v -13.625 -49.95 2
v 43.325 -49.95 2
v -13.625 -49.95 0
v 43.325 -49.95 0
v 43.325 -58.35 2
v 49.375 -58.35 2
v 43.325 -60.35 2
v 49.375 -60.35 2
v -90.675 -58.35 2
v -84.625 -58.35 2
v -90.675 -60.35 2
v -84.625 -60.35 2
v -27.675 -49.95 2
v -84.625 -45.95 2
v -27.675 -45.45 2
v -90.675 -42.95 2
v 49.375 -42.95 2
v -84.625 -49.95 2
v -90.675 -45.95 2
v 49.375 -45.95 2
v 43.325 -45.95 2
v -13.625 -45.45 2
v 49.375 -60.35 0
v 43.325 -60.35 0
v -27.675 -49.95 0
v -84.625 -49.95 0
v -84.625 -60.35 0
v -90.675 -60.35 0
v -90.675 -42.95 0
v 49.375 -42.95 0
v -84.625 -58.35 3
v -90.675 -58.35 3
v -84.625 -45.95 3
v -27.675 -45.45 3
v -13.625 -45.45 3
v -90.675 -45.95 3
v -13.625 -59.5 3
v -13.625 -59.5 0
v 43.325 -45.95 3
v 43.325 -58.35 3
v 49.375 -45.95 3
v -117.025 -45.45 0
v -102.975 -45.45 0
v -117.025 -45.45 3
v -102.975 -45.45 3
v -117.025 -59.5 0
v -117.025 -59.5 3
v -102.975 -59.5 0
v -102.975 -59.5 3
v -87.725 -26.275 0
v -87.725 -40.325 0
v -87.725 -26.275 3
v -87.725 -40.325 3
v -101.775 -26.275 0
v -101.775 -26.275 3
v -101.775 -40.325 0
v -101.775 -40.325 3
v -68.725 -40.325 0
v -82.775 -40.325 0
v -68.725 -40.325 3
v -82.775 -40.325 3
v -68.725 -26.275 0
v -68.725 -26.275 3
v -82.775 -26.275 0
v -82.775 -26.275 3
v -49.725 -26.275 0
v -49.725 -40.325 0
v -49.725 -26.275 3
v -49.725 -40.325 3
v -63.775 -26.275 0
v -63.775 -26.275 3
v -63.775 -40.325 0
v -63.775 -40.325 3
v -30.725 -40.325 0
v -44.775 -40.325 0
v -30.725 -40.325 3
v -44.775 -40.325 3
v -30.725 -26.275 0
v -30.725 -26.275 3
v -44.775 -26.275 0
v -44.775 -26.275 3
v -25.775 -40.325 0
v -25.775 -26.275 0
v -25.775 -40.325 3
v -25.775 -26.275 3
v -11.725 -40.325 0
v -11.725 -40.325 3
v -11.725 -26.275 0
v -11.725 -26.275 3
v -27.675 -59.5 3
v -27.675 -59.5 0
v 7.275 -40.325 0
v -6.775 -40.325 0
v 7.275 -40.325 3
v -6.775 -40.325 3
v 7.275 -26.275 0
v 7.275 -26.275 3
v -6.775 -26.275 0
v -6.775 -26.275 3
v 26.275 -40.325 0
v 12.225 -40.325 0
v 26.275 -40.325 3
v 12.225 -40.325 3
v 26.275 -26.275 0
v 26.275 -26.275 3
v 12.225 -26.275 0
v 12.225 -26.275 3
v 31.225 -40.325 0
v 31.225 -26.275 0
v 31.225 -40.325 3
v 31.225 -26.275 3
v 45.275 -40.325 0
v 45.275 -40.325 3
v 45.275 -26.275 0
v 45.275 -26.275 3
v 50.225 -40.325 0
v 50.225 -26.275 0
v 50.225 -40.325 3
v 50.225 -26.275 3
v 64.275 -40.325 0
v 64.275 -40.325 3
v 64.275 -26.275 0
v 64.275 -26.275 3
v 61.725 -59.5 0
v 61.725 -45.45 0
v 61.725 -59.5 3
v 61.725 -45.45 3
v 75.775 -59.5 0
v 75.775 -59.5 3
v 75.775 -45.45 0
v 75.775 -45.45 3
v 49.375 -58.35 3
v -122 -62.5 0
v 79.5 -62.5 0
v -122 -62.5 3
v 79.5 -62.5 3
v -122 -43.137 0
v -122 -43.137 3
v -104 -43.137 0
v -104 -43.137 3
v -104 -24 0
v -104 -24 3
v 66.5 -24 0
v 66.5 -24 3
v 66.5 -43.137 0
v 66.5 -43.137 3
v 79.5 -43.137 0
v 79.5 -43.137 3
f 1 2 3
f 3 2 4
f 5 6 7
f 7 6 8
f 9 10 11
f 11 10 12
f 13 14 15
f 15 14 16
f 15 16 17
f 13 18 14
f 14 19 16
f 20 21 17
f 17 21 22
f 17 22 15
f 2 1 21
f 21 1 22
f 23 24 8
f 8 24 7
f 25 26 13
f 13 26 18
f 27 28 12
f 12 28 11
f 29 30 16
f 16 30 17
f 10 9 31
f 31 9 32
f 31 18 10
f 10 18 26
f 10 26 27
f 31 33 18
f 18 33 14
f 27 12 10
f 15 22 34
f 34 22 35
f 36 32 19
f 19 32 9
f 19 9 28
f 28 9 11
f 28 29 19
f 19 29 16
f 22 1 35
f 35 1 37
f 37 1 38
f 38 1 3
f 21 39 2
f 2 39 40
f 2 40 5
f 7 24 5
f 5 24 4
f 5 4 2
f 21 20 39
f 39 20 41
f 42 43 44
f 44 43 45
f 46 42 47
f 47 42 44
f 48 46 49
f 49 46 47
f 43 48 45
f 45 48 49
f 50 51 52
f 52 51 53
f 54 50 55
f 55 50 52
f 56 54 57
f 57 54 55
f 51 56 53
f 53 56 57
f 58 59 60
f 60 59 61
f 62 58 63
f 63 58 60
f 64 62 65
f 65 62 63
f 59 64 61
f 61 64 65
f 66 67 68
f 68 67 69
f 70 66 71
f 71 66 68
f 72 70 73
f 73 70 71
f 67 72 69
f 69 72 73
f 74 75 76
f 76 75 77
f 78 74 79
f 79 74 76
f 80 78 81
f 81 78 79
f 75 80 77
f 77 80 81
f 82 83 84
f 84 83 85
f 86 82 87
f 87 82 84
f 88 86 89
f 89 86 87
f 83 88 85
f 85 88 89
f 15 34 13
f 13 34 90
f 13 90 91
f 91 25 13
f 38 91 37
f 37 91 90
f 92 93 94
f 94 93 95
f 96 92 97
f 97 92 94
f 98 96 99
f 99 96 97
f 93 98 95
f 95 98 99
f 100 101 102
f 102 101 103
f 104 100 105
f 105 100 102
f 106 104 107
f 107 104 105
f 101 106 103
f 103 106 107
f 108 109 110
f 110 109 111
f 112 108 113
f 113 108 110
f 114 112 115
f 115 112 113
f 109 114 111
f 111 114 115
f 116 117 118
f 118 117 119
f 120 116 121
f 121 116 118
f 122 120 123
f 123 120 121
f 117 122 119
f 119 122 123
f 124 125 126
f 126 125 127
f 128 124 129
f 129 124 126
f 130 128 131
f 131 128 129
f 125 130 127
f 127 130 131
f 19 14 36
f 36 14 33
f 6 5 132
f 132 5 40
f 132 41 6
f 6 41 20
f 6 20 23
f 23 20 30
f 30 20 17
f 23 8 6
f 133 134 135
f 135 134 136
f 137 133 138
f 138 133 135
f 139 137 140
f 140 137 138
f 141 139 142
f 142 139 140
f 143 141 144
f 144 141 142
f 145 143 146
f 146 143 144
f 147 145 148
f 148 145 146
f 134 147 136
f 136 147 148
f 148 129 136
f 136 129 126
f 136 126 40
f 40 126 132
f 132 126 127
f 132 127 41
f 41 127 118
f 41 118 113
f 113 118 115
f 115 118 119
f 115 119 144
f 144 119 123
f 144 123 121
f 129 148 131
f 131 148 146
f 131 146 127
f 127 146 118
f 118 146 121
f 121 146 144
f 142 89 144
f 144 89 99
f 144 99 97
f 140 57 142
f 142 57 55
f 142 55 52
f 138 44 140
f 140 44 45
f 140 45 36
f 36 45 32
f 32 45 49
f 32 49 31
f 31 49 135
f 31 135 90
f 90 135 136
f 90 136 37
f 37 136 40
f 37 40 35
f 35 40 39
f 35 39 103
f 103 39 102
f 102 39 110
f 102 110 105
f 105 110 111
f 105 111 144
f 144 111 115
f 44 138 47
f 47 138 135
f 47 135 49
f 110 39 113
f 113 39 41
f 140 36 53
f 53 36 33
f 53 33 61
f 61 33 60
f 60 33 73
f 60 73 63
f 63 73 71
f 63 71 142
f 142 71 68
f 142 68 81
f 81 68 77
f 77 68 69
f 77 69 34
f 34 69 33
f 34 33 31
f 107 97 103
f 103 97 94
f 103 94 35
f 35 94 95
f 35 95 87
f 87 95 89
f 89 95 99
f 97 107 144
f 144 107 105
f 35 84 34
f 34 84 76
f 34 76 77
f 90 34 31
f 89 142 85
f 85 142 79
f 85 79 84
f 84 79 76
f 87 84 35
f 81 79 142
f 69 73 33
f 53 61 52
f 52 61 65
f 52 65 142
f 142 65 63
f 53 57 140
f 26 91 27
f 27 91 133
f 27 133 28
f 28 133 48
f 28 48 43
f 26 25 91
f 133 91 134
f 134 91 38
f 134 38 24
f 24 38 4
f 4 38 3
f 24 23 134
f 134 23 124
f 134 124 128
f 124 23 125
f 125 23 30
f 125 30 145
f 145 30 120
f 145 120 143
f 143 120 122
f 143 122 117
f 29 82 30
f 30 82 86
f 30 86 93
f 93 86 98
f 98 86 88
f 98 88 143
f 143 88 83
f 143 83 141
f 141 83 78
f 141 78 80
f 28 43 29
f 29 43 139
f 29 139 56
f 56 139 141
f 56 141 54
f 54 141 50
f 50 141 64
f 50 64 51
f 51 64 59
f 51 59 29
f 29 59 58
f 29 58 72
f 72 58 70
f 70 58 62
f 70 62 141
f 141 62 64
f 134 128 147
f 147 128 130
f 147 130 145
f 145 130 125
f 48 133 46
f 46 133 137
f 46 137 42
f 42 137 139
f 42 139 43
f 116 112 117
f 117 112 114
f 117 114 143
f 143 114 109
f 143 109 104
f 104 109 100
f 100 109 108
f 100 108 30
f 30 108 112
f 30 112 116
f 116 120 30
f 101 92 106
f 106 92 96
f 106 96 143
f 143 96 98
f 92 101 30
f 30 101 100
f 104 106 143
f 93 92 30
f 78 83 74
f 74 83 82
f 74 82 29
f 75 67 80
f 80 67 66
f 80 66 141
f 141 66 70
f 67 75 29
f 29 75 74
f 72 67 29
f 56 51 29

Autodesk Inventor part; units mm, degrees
ref_plane "YZ Plane" through (0, 0, 0) normal (1, 0, 0) x (0, 1, 0)
ref_plane "XZ Plane" through (0, 0, 0) normal (0, 1, 0) x (-1, 0, 0)
ref_plane "XY Plane" through (0, 0, 0) normal (0, 0, 1) x (1, 0, 0)
sketch "Sketch1" plane through (0, 0, 0) normal (0, 0, 1) x (1, 0, 0)
  line L0 (31.275, 11.925) -> (31.275, -2.125) construction
  line L1 (31.275, -2.125) -> (17.225, -2.125) construction
  line L2 (17.225, -2.125) -> (17.225, 11.925) construction
  line L3 (17.225, 11.925) -> (31.275, 11.925) construction
  line L4 (-101.725, 11.925) -> (-101.725, -2.125) construction
  line L5 (-101.725, -2.125) -> (-115.775, -2.125) construction
  line L6 (-115.775, -2.125) -> (-115.775, 11.925) construction
  line L7 (-115.775, 11.925) -> (-101.725, 11.925) construction
  line L8 (43.325, -43.95) -> (49.375, -43.95) construction
  line L9 (49.375, -43.95) -> (49.375, -61) construction
  line L10 (49.375, -61) -> (43.325, -61) construction
  line L11 (43.325, -61) -> (43.325, -43.95) construction
  line L12 (117.95, -19.8) -> (117.95, -13.75) construction
  line L13 (117.95, -13.75) -> (135, -13.75) construction
  line L14 (135, -13.75) -> (135, -19.8) construction
  line L15 (135, -19.8) -> (117.95, -19.8) construction
  line L16 (26.325, -43.95) -> (32.375, -43.95) construction
  line L17 (32.375, -43.95) -> (32.375, -61) construction
  line L18 (32.375, -61) -> (26.325, -61) construction
  line L19 (26.325, -61) -> (26.325, -43.95) construction
  line L20 (-152.525, 13.425) -> (-146.475, 13.425) construction
  line L21 (-146.475, 13.425) -> (-146.475, -3.625) construction
  line L22 (-146.475, -3.625) -> (-152.525, -3.625) construction
  line L23 (-152.525, -3.625) -> (-152.525, 13.425) construction
  line L24 (-90.675, -43.95) -> (-84.625, -43.95) construction
  line L25 (-84.625, -43.95) -> (-84.625, -61) construction
  line L26 (-84.625, -61) -> (-90.675, -61) construction
  line L27 (-90.675, -61) -> (-90.675, -43.95) construction
  line L28 (39.375, -43.95) -> (39.375, -61) construction
  line L29 (39.375, -61) -> (33.325, -61) construction
  line L30 (33.325, -61) -> (33.325, -43.95) construction
  line L31 (33.325, -43.95) -> (39.375, -43.95) construction
  line L32 (117.95, 4.2) -> (117.95, 10.25) construction
  line L33 (117.95, 10.25) -> (135, 10.25) construction
  line L34 (135, 10.25) -> (135, 4.2) construction
  line L35 (135, 4.2) -> (117.95, 4.2) construction
  line L36 (-67.625, -43.95) -> (-67.625, -61) construction
  line L37 (-67.625, -61) -> (-73.675, -61) construction
  line L38 (-73.675, -61) -> (-73.675, -43.95) construction
  line L39 (-73.675, -43.95) -> (-67.625, -43.95) construction
  line L40 (-128.525, 13.425) -> (-122.475, 13.425) construction
  line L41 (-122.475, 13.425) -> (-122.475, -3.625) construction
  line L42 (-122.475, -3.625) -> (-128.525, -3.625) construction
  line L43 (-128.525, -3.625) -> (-128.525, 13.425) construction
  line L44 (-74.625, -43.95) -> (-74.625, -61) construction
  line L45 (-74.625, -61) -> (-80.675, -61) construction
  line L46 (-80.675, -61) -> (-80.675, -43.95) construction
  line L47 (-80.675, -43.95) -> (-74.625, -43.95) construction
  line L48 (-157.5, -62.5) -> (157.5, -62.5) construction
  line L49 (157.5, -62.5) -> (157.5, -41.5) construction
  line L50 (157.5, -41.5) -> (139.5, -41.5) construction
  line L51 (139.5, -41.5) -> (139.5, 12.5) construction
  line L52 (139.5, 12.5) -> (157.5, 12.5) construction
  line L53 (157.5, 12.5) -> (157.5, 62.5) construction
  line L54 (157.5, 62.5) -> (-157.5, 62.5) construction
  line L55 (-157.5, 62.5) -> (-157.5, -62.5) construction
  line L56 (-38.5, 42.5) -> (6.5, 42.5) construction
  line L57 (6.5, 42.5) -> (6.5, 33.5) construction
  line L58 (6.5, 33.5) -> (-38.5, 33.5) construction
  line L59 (-38.5, 33.5) -> (-38.5, 42.5) construction
  line L60 (154.775, -45.45) -> (154.775, -59.5) construction
  line L61 (154.775, -59.5) -> (140.725, -59.5) construction
  line L62 (140.725, -59.5) -> (140.725, -45.45) construction
  line L63 (140.725, -45.45) -> (154.775, -45.45) construction
  line L64 (135.775, -45.45) -> (135.775, -59.5) construction
  line L65 (135.775, -59.5) -> (121.725, -59.5) construction
  line L66 (121.725, -59.5) -> (121.725, -45.45) construction
  line L67 (121.725, -45.45) -> (135.775, -45.45) construction
  line L68 (116.775, -45.45) -> (116.775, -59.5) construction
  line L69 (116.775, -59.5) -> (102.725, -59.5) construction
  line L70 (102.725, -59.5) -> (102.725, -45.45) construction
  line L71 (102.725, -45.45) -> (116.775, -45.45) construction
  line L72 (97.775, -45.45) -> (97.775, -59.5) construction
  line L73 (97.775, -59.5) -> (83.725, -59.5) construction
  line L74 (83.725, -59.5) -> (83.725, -45.45) construction
  line L75 (83.725, -45.45) -> (97.775, -45.45) construction
  line L76 (75.775, -45.45) -> (75.775, -59.5) construction
  line L77 (75.775, -59.5) -> (61.725, -59.5) construction
  line L78 (61.725, -59.5) -> (61.725, -45.45) construction
  line L79 (61.725, -45.45) -> (75.775, -45.45) construction
  line L80 (-13.625, -45.45) -> (-13.625, -59.5) construction
  line L81 (-13.625, -59.5) -> (-27.675, -59.5) construction
  line L82 (-27.675, -59.5) -> (-27.675, -45.45) construction
  line L83 (-27.675, -45.45) -> (-13.625, -45.45) construction
  line L84 (-102.975, -45.45) -> (-102.975, -59.5) construction
  line L85 (-102.975, -59.5) -> (-117.025, -59.5) construction
  line L86 (-117.025, -59.5) -> (-117.025, -45.45) construction
  line L87 (-117.025, -45.45) -> (-102.975, -45.45) construction
  line L88 (-141.525, -45.45) -> (-127.475, -45.45) construction
  line L89 (-127.475, -45.45) -> (-127.475, -59.5) construction
  line L90 (-127.475, -59.5) -> (-141.525, -59.5) construction
  line L91 (-141.525, -59.5) -> (-141.525, -45.45) construction
  line L92 (121.725, -26.275) -> (135.775, -26.275) construction
  line L93 (135.775, -26.275) -> (135.775, -40.325) construction
  line L94 (135.775, -40.325) -> (121.725, -40.325) construction
  line L95 (121.725, -40.325) -> (121.725, -26.275) construction
  line L96 (95.475, -26.275) -> (109.525, -26.275) construction
  line L97 (109.525, -26.275) -> (109.525, -40.325) construction
  line L98 (109.525, -40.325) -> (95.475, -40.325) construction
  line L99 (95.475, -40.325) -> (95.475, -26.275) construction
  line L100 (69.225, -26.275) -> (83.275, -26.275) construction
  line L101 (83.275, -26.275) -> (83.275, -40.325) construction
  line L102 (83.275, -40.325) -> (69.225, -40.325) construction
  line L103 (69.225, -40.325) -> (69.225, -26.275) construction
  line L104 (50.225, -26.275) -> (64.275, -26.275) construction
  line L105 (64.275, -26.275) -> (64.275, -40.325) construction
  line L106 (64.275, -40.325) -> (50.225, -40.325) construction
  line L107 (50.225, -40.325) -> (50.225, -26.275) construction
  line L108 (31.225, -26.275) -> (45.275, -26.275) construction
  line L109 (45.275, -26.275) -> (45.275, -40.325) construction
  line L110 (45.275, -40.325) -> (31.225, -40.325) construction
  line L111 (31.225, -40.325) -> (31.225, -26.275) construction
  line L112 (12.225, -26.275) -> (26.275, -26.275) construction
  line L113 (26.275, -26.275) -> (26.275, -40.325) construction
  line L114 (26.275, -40.325) -> (12.225, -40.325) construction
  line L115 (12.225, -40.325) -> (12.225, -26.275) construction
  line L116 (-6.775, -26.275) -> (7.275, -26.275) construction
  line L117 (7.275, -26.275) -> (7.275, -40.325) construction
  line L118 (7.275, -40.325) -> (-6.775, -40.325) construction
  line L119 (-6.775, -40.325) -> (-6.775, -26.275) construction
  line L120 (-25.775, -26.275) -> (-11.725, -26.275) construction
  line L121 (-11.725, -26.275) -> (-11.725, -40.325) construction
  line L122 (-11.725, -40.325) -> (-25.775, -40.325) construction
  line L123 (-25.775, -40.325) -> (-25.775, -26.275) construction
  line L124 (-44.775, -26.275) -> (-30.725, -26.275) construction
  line L125 (-30.725, -26.275) -> (-30.725, -40.325) construction
  line L126 (-30.725, -40.325) -> (-44.775, -40.325) construction
  line L127 (-44.775, -40.325) -> (-44.775, -26.275) construction
  line L128 (-63.775, -26.275) -> (-49.725, -26.275) construction
  line L129 (-49.725, -26.275) -> (-49.725, -40.325) construction
  line L130 (-49.725, -40.325) -> (-63.775, -40.325) construction
  line L131 (-63.775, -40.325) -> (-63.775, -26.275) construction
  line L132 (-82.775, -26.275) -> (-68.725, -26.275) construction
  line L133 (-68.725, -26.275) -> (-68.725, -40.325) construction
  line L134 (-68.725, -40.325) -> (-82.775, -40.325) construction
  line L135 (-82.775, -40.325) -> (-82.775, -26.275) construction
  line L136 (-101.775, -26.275) -> (-87.725, -26.275) construction
  line L137 (-87.725, -26.275) -> (-87.725, -40.325) construction
  line L138 (-87.725, -40.325) -> (-101.775, -40.325) construction
  line L139 (-101.775, -40.325) -> (-101.775, -26.275) construction
  line L140 (-120.775, -26.275) -> (-106.725, -26.275) construction
  line L141 (-106.725, -26.275) -> (-106.725, -40.325) construction
  line L142 (-106.725, -40.325) -> (-120.775, -40.325) construction
  line L143 (-120.775, -40.325) -> (-120.775, -26.275) construction
  line L144 (-146.775, -26.275) -> (-132.725, -26.275) construction
  line L145 (-132.725, -26.275) -> (-132.725, -40.325) construction
  line L146 (-132.725, -40.325) -> (-146.775, -40.325) construction
  line L147 (-146.775, -40.325) -> (-146.775, -26.275) construction
  line L148 (97.975, -7.175) -> (112.025, -7.175) construction
  line L149 (112.025, -7.175) -> (112.025, -21.225) construction
  line L150 (112.025, -21.225) -> (97.975, -21.225) construction
  line L151 (97.975, -21.225) -> (97.975, -7.175) construction
  line L152 (78.975, -7.175) -> (93.025, -7.175) construction
  line L153 (93.025, -7.175) -> (93.025, -21.225) construction
  line L154 (93.025, -21.225) -> (78.975, -21.225) construction
  line L155 (78.975, -21.225) -> (78.975, -7.175) construction
  line L156 (59.975, -7.175) -> (74.025, -7.175) construction
  line L157 (74.025, -7.175) -> (74.025, -21.225) construction
  line L158 (74.025, -21.225) -> (59.975, -21.225) construction
  line L159 (59.975, -21.225) -> (59.975, -7.175) construction
  line L160 (40.975, -7.175) -> (55.025, -7.175) construction
  line L161 (55.025, -7.175) -> (55.025, -21.225) construction
  line L162 (55.025, -21.225) -> (40.975, -21.225) construction
  line L163 (40.975, -21.225) -> (40.975, -7.175) construction
  line L164 (21.975, -7.175) -> (36.025, -7.175) construction
  line L165 (36.025, -7.175) -> (36.025, -21.225) construction
  line L166 (36.025, -21.225) -> (21.975, -21.225) construction
  line L167 (21.975, -21.225) -> (21.975, -7.175) construction
  line L168 (2.975, -7.175) -> (17.025, -7.175) construction
  line L169 (17.025, -7.175) -> (17.025, -21.225) construction
  line L170 (17.025, -21.225) -> (2.975, -21.225) construction
  line L171 (2.975, -21.225) -> (2.975, -7.175) construction
  line L172 (-16.025, -7.175) -> (-1.975, -7.175) construction
  line L173 (-1.975, -7.175) -> (-1.975, -21.225) construction
  line L174 (-1.975, -21.225) -> (-16.025, -21.225) construction
  line L175 (-16.025, -21.225) -> (-16.025, -7.175) construction
  line L176 (-35.025, -7.175) -> (-20.975, -7.175) construction
  line L177 (-20.975, -7.175) -> (-20.975, -21.225) construction
  line L178 (-20.975, -21.225) -> (-35.025, -21.225) construction
  line L179 (-35.025, -21.225) -> (-35.025, -7.175) construction
  line L180 (-54.025, -7.175) -> (-39.975, -7.175) construction
  line L181 (-39.975, -7.175) -> (-39.975, -21.225) construction
  line L182 (-39.975, -21.225) -> (-54.025, -21.225) construction
  line L183 (-54.025, -21.225) -> (-54.025, -7.175) construction
  line L184 (-73.025, -7.175) -> (-58.975, -7.175) construction
  line L185 (-58.975, -7.175) -> (-58.975, -21.225) construction
  line L186 (-58.975, -21.225) -> (-73.025, -21.225) construction
  line L187 (-73.025, -21.225) -> (-73.025, -7.175) construction
  line L188 (-92.025, -7.175) -> (-77.975, -7.175) construction
  line L189 (-77.975, -7.175) -> (-77.975, -21.225) construction
  line L190 (-77.975, -21.225) -> (-92.025, -21.225) construction
  line L191 (-92.025, -21.225) -> (-92.025, -7.175) construction
  line L192 (-111.025, -7.175) -> (-96.975, -7.175) construction
  line L193 (-96.975, -7.175) -> (-96.975, -21.225) construction
  line L194 (-96.975, -21.225) -> (-111.025, -21.225) construction
  line L195 (-111.025, -21.225) -> (-111.025, -7.175) construction
  line L196 (-130.025, -7.175) -> (-115.975, -7.175) construction
  line L197 (-115.975, -7.175) -> (-115.975, -21.225) construction
  line L198 (-115.975, -21.225) -> (-130.025, -21.225) construction
  line L199 (-130.025, -21.225) -> (-130.025, -7.175) construction
  line L200 (-151.525, -7.175) -> (-137.475, -7.175) construction
  line L201 (-137.475, -7.175) -> (-137.475, -21.225) construction
  line L202 (-137.475, -21.225) -> (-151.525, -21.225) construction
  line L203 (-151.525, -21.225) -> (-151.525, -7.175) construction
  line L204 (119.45, 2.25) -> (133.5, 2.25) construction
  line L205 (133.5, 2.25) -> (133.5, -11.8) construction
  line L206 (133.5, -11.8) -> (119.45, -11.8) construction
  line L207 (119.45, -11.8) -> (119.45, 2.25) construction
  line L208 (107.275, 11.925) -> (107.275, -2.125) construction
  line L209 (107.275, -2.125) -> (93.225, -2.125) construction
  line L210 (93.225, -2.125) -> (93.225, 11.925) construction
  line L211 (93.225, 11.925) -> (107.275, 11.925) construction
  line L212 (88.275, 11.925) -> (88.275, -2.125) construction
  line L213 (88.275, -2.125) -> (74.225, -2.125) construction
  line L214 (74.225, -2.125) -> (74.225, 11.925) construction
  line L215 (74.225, 11.925) -> (88.275, 11.925) construction
  line L216 (69.275, 11.925) -> (69.275, -2.125) construction
  line L217 (69.275, -2.125) -> (55.225, -2.125) construction
  line L218 (55.225, -2.125) -> (55.225, 11.925) construction
  line L219 (55.225, 11.925) -> (69.275, 11.925) construction
  line L220 (50.275, 11.925) -> (50.275, -2.125) construction
  line L221 (50.275, -2.125) -> (36.225, -2.125) construction
  line L222 (36.225, -2.125) -> (36.225, 11.925) construction
  line L223 (36.225, 11.925) -> (50.275, 11.925) construction
  line L224 (12.275, 11.925) -> (12.275, -2.125) construction
  line L225 (12.275, -2.125) -> (-1.775, -2.125) construction
  line L226 (-1.775, -2.125) -> (-1.775, 11.925) construction
  line L227 (-1.775, 11.925) -> (12.275, 11.925) construction
  line L228 (-6.725, 11.925) -> (-6.725, -2.125) construction
  line L229 (-6.725, -2.125) -> (-20.775, -2.125) construction
  line L230 (-20.775, -2.125) -> (-20.775, 11.925) construction
  line L231 (-20.775, 11.925) -> (-6.725, 11.925) construction
  line L232 (-25.725, 11.925) -> (-25.725, -2.125) construction
  line L233 (-25.725, -2.125) -> (-39.775, -2.125) construction
  line L234 (-39.775, -2.125) -> (-39.775, 11.925) construction
  line L235 (-39.775, 11.925) -> (-25.725, 11.925) construction
  line L236 (-44.725, 11.925) -> (-44.725, -2.125) construction
  line L237 (-44.725, -2.125) -> (-58.775, -2.125) construction
  line L238 (-58.775, -2.125) -> (-58.775, 11.925) construction
  line L239 (-58.775, 11.925) -> (-44.725, 11.925) construction
  line L240 (-63.725, 11.925) -> (-63.725, -2.125) construction
  line L241 (-63.725, -2.125) -> (-77.775, -2.125) construction
  line L242 (-77.775, -2.125) -> (-77.775, 11.925) construction
  line L243 (-77.775, 11.925) -> (-63.725, 11.925) construction
  line L244 (-82.725, 11.925) -> (-82.725, -2.125) construction
  line L245 (-82.725, -2.125) -> (-96.775, -2.125) construction
  line L246 (-96.775, -2.125) -> (-96.775, 11.925) construction
  line L247 (-96.775, 11.925) -> (-82.725, 11.925) construction
  line L248 (-144.525, 11.925) -> (-130.475, 11.925) construction
  line L249 (-130.475, 11.925) -> (-130.475, -2.125) construction
  line L250 (-130.475, -2.125) -> (-144.525, -2.125) construction
  line L251 (-144.525, -2.125) -> (-144.525, 11.925) construction
  line L252 (154.525, 16.975) -> (140.475, 16.975) construction
  line L253 (140.475, 16.975) -> (140.475, 31.025) construction
  line L254 (140.475, 31.025) -> (154.525, 31.025) construction
  line L255 (154.525, 31.025) -> (154.525, 16.975) construction
  line L256 (135.525, 16.975) -> (121.475, 16.975) construction
  line L257 (121.475, 16.975) -> (121.475, 31.025) construction
  line L258 (121.475, 31.025) -> (135.525, 31.025) construction
  line L259 (135.525, 31.025) -> (135.525, 16.975) construction
  line L260 (116.525, 16.975) -> (102.475, 16.975) construction
  line L261 (102.475, 16.975) -> (102.475, 31.025) construction
  line L262 (102.475, 31.025) -> (116.525, 31.025) construction
  line L263 (116.525, 31.025) -> (116.525, 16.975) construction
  line L264 (97.525, 16.975) -> (83.475, 16.975) construction
  line L265 (83.475, 16.975) -> (83.475, 31.025) construction
  line L266 (83.475, 31.025) -> (97.525, 31.025) construction
  line L267 (97.525, 31.025) -> (97.525, 16.975) construction
  line L268 (78.525, 16.975) -> (64.475, 16.975) construction
  line L269 (64.475, 16.975) -> (64.475, 31.025) construction
  line L270 (64.475, 31.025) -> (78.525, 31.025) construction
  line L271 (78.525, 31.025) -> (78.525, 16.975) construction
  line L272 (59.525, 16.975) -> (45.475, 16.975) construction
  line L273 (45.475, 16.975) -> (45.475, 31.025) construction
  line L274 (45.475, 31.025) -> (59.525, 31.025) construction
  line L275 (59.525, 31.025) -> (59.525, 16.975) construction
  line L276 (40.525, 16.975) -> (26.475, 16.975) construction
  line L277 (26.475, 16.975) -> (26.475, 31.025) construction
  line L278 (26.475, 31.025) -> (40.525, 31.025) construction
  line L279 (40.525, 31.025) -> (40.525, 16.975) construction
  line L280 (21.525, 16.975) -> (7.475, 16.975) construction
  line L281 (7.475, 16.975) -> (7.475, 31.025) construction
  line L282 (7.475, 31.025) -> (21.525, 31.025) construction
  line L283 (21.525, 31.025) -> (21.525, 16.975) construction
  line L284 (2.525, 16.975) -> (-11.525, 16.975) construction
  line L285 (-11.525, 16.975) -> (-11.525, 31.025) construction
  line L286 (-11.525, 31.025) -> (2.525, 31.025) construction
  line L287 (2.525, 31.025) -> (2.525, 16.975) construction
  line L288 (-16.475, 16.975) -> (-30.525, 16.975) construction
  line L289 (-30.525, 16.975) -> (-30.525, 31.025) construction
  line L290 (-30.525, 31.025) -> (-16.475, 31.025) construction
  line L291 (-16.475, 31.025) -> (-16.475, 16.975) construction
  line L292 (-35.475, 16.975) -> (-49.525, 16.975) construction
  line L293 (-49.525, 16.975) -> (-49.525, 31.025) construction
  line L294 (-49.525, 31.025) -> (-35.475, 31.025) construction
  line L295 (-35.475, 31.025) -> (-35.475, 16.975) construction
  line L296 (-54.475, 16.975) -> (-68.525, 16.975) construction
  line L297 (-68.525, 16.975) -> (-68.525, 31.025) construction
  line L298 (-68.525, 31.025) -> (-54.475, 31.025) construction
  line L299 (-54.475, 31.025) -> (-54.475, 16.975) construction
  line L300 (-73.475, 16.975) -> (-87.525, 16.975) construction
  line L301 (-87.525, 16.975) -> (-87.525, 31.025) construction
  line L302 (-87.525, 31.025) -> (-73.475, 31.025) construction
  line L303 (-73.475, 31.025) -> (-73.475, 16.975) construction
  line L304 (-92.475, 16.975) -> (-106.525, 16.975) construction
  line L305 (-106.525, 16.975) -> (-106.525, 31.025) construction
  line L306 (-106.525, 31.025) -> (-92.475, 31.025) construction
  line L307 (-92.475, 31.025) -> (-92.475, 16.975) construction
  line L308 (-111.475, 16.975) -> (-125.525, 16.975) construction
  line L309 (-125.525, 16.975) -> (-125.525, 31.025) construction
  line L310 (-125.525, 31.025) -> (-111.475, 31.025) construction
  line L311 (-111.475, 31.025) -> (-111.475, 16.975) construction
  line L312 (-149.525, 31.025) -> (-135.475, 31.025) construction
  line L313 (-135.475, 31.025) -> (-135.475, 16.975) construction
  line L314 (-135.475, 16.975) -> (-149.525, 16.975) construction
  line L315 (-149.525, 16.975) -> (-149.525, 31.025) construction
  line L316 (138.975, 59.525) -> (153.025, 59.525) construction
  line L317 (153.025, 59.525) -> (153.025, 45.475) construction
  line L318 (153.025, 45.475) -> (138.975, 45.475) construction
  line L319 (138.975, 45.475) -> (138.975, 59.525) construction
  line L320 (105.475, 59.525) -> (119.525, 59.525) construction
  line L321 (119.525, 59.525) -> (119.525, 45.475) construction
  line L322 (119.525, 45.475) -> (105.475, 45.475) construction
  line L323 (105.475, 45.475) -> (105.475, 59.525) construction
  line L324 (81.475, 59.525) -> (95.525, 59.525) construction
  line L325 (95.525, 59.525) -> (95.525, 45.475) construction
  line L326 (95.525, 45.475) -> (81.475, 45.475) construction
  line L327 (81.475, 45.475) -> (81.475, 59.525) construction
  line L328 (57.475, 59.525) -> (71.525, 59.525) construction
  line L329 (71.525, 59.525) -> (71.525, 45.475) construction
  line L330 (71.525, 45.475) -> (57.475, 45.475) construction
  line L331 (57.475, 45.475) -> (57.475, 59.525) construction
  line L332 (33.475, 59.525) -> (47.525, 59.525) construction
  line L333 (47.525, 59.525) -> (47.525, 45.475) construction
  line L334 (47.525, 45.475) -> (33.475, 45.475) construction
  line L335 (33.475, 45.475) -> (33.475, 59.525) construction
  line L336 (9.475, 59.525) -> (23.525, 59.525) construction
  line L337 (23.525, 59.525) -> (23.525, 45.475) construction
  line L338 (23.525, 45.475) -> (9.475, 45.475) construction
  line L339 (9.475, 45.475) -> (9.475, 59.525) construction
  line L340 (-23.025, 59.525) -> (-8.975, 59.525) construction
  line L341 (-8.975, 59.525) -> (-8.975, 45.475) construction
  line L342 (-8.975, 45.475) -> (-23.025, 45.475) construction
  line L343 (-23.025, 45.475) -> (-23.025, 59.525) construction
  line L344 (-47.025, 59.525) -> (-32.975, 59.525) construction
  line L345 (-32.975, 59.525) -> (-32.975, 45.475) construction
  line L346 (-32.975, 45.475) -> (-47.025, 45.475) construction
  line L347 (-47.025, 45.475) -> (-47.025, 59.525) construction
  line L348 (-71.025, 59.525) -> (-56.975, 59.525) construction
  line L349 (-56.975, 59.525) -> (-56.975, 45.475) construction
  line L350 (-56.975, 45.475) -> (-71.025, 45.475) construction
  line L351 (-71.025, 45.475) -> (-71.025, 59.525) construction
  line L352 (-95.025, 59.525) -> (-80.975, 59.525) construction
  line L353 (-80.975, 59.525) -> (-80.975, 45.475) construction
  line L354 (-80.975, 45.475) -> (-95.025, 45.475) construction
  line L355 (-95.025, 45.475) -> (-95.025, 59.525) construction
  line L356 (-119.025, 59.525) -> (-104.975, 59.525) construction
  line L357 (-104.975, 59.525) -> (-104.975, 45.475) construction
  line L358 (-104.975, 45.475) -> (-119.025, 45.475) construction
  line L359 (-119.025, 45.475) -> (-119.025, 59.525) construction
  line L360 (-152.025, 59.525) -> (-137.975, 59.525) construction
  line L361 (-137.975, 59.525) -> (-137.975, 45.475) construction
  line L362 (-137.975, 45.475) -> (-152.025, 45.475) construction
  line L363 (-152.025, 45.475) -> (-152.025, 59.525) construction
  line L364 (-122.25, -62.5) -> (-122.25, -42.8875) construction
  line L365 (-122.25, -42.8875) -> (-104.25, -42.8875) construction
  line L366 (-104.25, -42.8875) -> (-104.25, -23.75) construction
  line L367 (-104.25, -23.75) -> (66.75, -23.75) construction
  line L368 (66.75, -23.75) -> (66.75, -42.8875) construction
  line L369 (66.75, -42.8875) -> (79.75, -42.8875) construction
  line L370 (79.75, -42.8875) -> (79.75, -62.5) construction
  line L371 (75.775, -45.45) -> (79.75, -45.45) construction
  line L372 (79.75, -45.45) -> (83.725, -45.45) construction
  line L373 (75.775, -45.45) -> (75.775, -42.8875) construction
  line L374 (75.775, -42.8875) -> (75.775, -40.325) construction
  line L375 (69.225, -40.325) -> (66.75, -40.325) construction
  line L376 (66.75, -40.325) -> (64.275, -40.325) construction
  line L377 (64.275, -26.275) -> (64.275, -23.75) construction
  line L378 (64.275, -23.75) -> (64.275, -21.225) construction
  line L379 (-106.725, -26.275) -> (-104.25, -26.275) construction
  line L380 (-104.25, -26.275) -> (-101.775, -26.275) construction
  line L381 (-106.725, -40.325) -> (-106.725, -42.8875) construction
  line L382 (-106.725, -42.8875) -> (-106.725, -45.45) construction
  line L383 (-127.475, -45.45) -> (-122.25, -45.45) construction
  line L384 (-122.25, -45.45) -> (-117.025, -45.45) construction
  line L385 (-122, -62.5) -> (-122, -43.1375)
  line L386 (-122, -43.1375) -> (-104, -43.1375)
  line L387 (-104, -43.1375) -> (-104, -24)
  line L388 (-104, -24) -> (66.5, -24)
  line L389 (66.5, -24) -> (66.5, -43.1375)
  line L390 (66.5, -43.1375) -> (79.5, -43.1375)
  line L391 (79.5, -43.1375) -> (79.5, -62.5)
  line L392 (79.5, -62.5) -> (-122, -62.5)
  line L393 (-102.975, -45.45) -> (-102.975, -59.5) projected
  line L394 (-117.025, -45.45) -> (-102.975, -45.45) projected
  line L395 (-117.025, -59.5) -> (-117.025, -45.45) projected
  line L396 (-102.975, -59.5) -> (-117.025, -59.5) projected
  line L397 (-87.725, -40.325) -> (-101.775, -40.325) projected
  line L398 (-101.775, -40.325) -> (-101.775, -26.275) projected
  line L399 (-101.775, -26.275) -> (-87.725, -26.275) projected
  line L400 (-87.725, -26.275) -> (-87.725, -40.325) projected
  line L401 (-82.775, -40.325) -> (-82.775, -26.275) projected
  line L402 (-82.775, -26.275) -> (-68.725, -26.275) projected
  line L403 (-68.725, -26.275) -> (-68.725, -40.325) projected
  line L404 (-68.725, -40.325) -> (-82.775, -40.325) projected
  line L405 (-49.725, -40.325) -> (-63.775, -40.325) projected
  line L406 (-63.775, -40.325) -> (-63.775, -26.275) projected
  line L407 (-49.725, -26.275) -> (-49.725, -40.325) projected
  line L408 (-63.775, -26.275) -> (-49.725, -26.275) projected
  line L409 (-44.775, -40.325) -> (-44.775, -26.275) projected
  line L410 (-44.775, -26.275) -> (-30.725, -26.275) projected
  line L411 (-30.725, -40.325) -> (-44.775, -40.325) projected
  line L412 (-30.725, -26.275) -> (-30.725, -40.325) projected
  line L413 (-25.775, -26.275) -> (-11.725, -26.275) projected
  line L414 (-25.775, -40.325) -> (-25.775, -26.275) projected
  line L415 (-11.725, -26.275) -> (-11.725, -40.325) projected
  line L416 (-11.725, -40.325) -> (-25.775, -40.325) projected
  line L417 (-27.675, -45.45) -> (-13.625, -45.45) projected
  line L418 (-13.625, -45.45) -> (-13.625, -59.5) projected
  line L419 (-27.675, -59.5) -> (-27.675, -45.45) projected
  line L420 (-13.625, -59.5) -> (-27.675, -59.5) projected
  line L421 (-6.775, -40.325) -> (-6.775, -26.275) projected
  line L422 (7.275, -40.325) -> (-6.775, -40.325) projected
  line L423 (7.275, -26.275) -> (7.275, -40.325) projected
  line L424 (-6.775, -26.275) -> (7.275, -26.275) projected
  line L425 (12.225, -40.325) -> (12.225, -26.275) projected
  line L426 (12.225, -26.275) -> (26.275, -26.275) projected
  line L427 (26.275, -26.275) -> (26.275, -40.325) projected
  line L428 (26.275, -40.325) -> (12.225, -40.325) projected
  line L429 (31.225, -26.275) -> (45.275, -26.275) projected
  line L430 (45.275, -26.275) -> (45.275, -40.325) projected
  line L431 (31.225, -40.325) -> (31.225, -26.275) projected
  line L432 (45.275, -40.325) -> (31.225, -40.325) projected
  line L433 (50.225, -26.275) -> (64.275, -26.275) projected
  line L434 (50.225, -40.325) -> (50.225, -26.275) projected
  line L435 (64.275, -40.325) -> (50.225, -40.325) projected
  line L436 (64.275, -26.275) -> (64.275, -40.325) projected
  line L437 (61.725, -45.45) -> (75.775, -45.45) projected
  line L438 (75.775, -45.45) -> (75.775, -59.5) projected
  line L439 (61.725, -59.5) -> (61.725, -45.45) projected
  line L440 (75.775, -59.5) -> (61.725, -59.5) projected
  line L441 (-90.675, -45.95) -> (-84.625, -45.95)
  line L442 (-90.675, -58.35) -> (-84.625, -58.35)
  line L443 (-90.675, -45.95) -> (-90.675, -58.35)
  line L444 (-84.625, -45.95) -> (-84.625, -58.35)
  line L445 (43.325, -45.95) -> (49.375, -45.95)
  line L446 (43.325, -58.35) -> (49.375, -58.35)
  line L447 (43.325, -45.95) -> (43.325, -58.35)
  line L448 (49.375, -45.95) -> (49.375, -58.35)
  point P0 (0, 0)
  dimension "d0" = 0.25
  dimension "d1" = 0.25
  dimension "d2" = 0.25
  dimension "d3" = 0.25
  dimension "d4" = 0.25
  dimension "d5" = 0.25
  dimension "d6" = 0.25
  dimension "d7" = 2
  dimension "d8" = 12.4
extrude "Extrusion1" add sketch "Sketch1" along normal blind 3
sketch "Sketch2" plane through (0, 0, 0) normal (0, 0, -1) x (-1, 0, 0)
  line L0 (-49.375, -60.35) -> (-43.325, -60.35)
  line L1 (-43.325, -60.35) -> (-43.325, -49.95)
  line L2 (-43.325, -42.95) -> (-49.375, -42.95)
  line L3 (-49.375, -42.95) -> (-49.375, -60.35)
  line L4 (-43.325, -45.95) -> (-49.375, -45.95) projected
  line L5 (-49.375, -61) -> (-49.375, -43.95) construction
  line L6 (-43.325, -43.95) -> (-43.325, -61) construction
  line L7 (84.625, -61) -> (84.625, -43.95) construction
  line L8 (90.675, -43.95) -> (90.675, -61) construction
  line L9 (84.625, -42.95) -> (90.675, -42.95)
  line L10 (90.675, -42.95) -> (90.675, -60.35)
  line L11 (90.675, -60.35) -> (84.625, -60.35)
  line L12 (84.625, -60.35) -> (84.625, -49.95)
  line L13 (-43.325, -42.95) -> (84.625, -42.95)
  line L14 (-43.325, -49.95) -> (84.625, -49.95)
  line L15 (84.625, -45.95) -> (84.625, -58.35) projected
  point P0 (0, 0)
  point P1 (-49.375, -58.35)
  point P2 (-43.325, -58.35)
  dimension "d12" = 3
  dimension "d13" = 4
extrude "Extrusion2" cut sketch "Sketch2" against normal blind 2
equation "\"d0\" = ipg"
equation "\"d1\" = ipg"
equation "\"d2\" = ipg"
equation "\"d3\" = ipg"
equation "\"d4\" = ipg"
equation "\"d5\" = ipg"
equation "\"d6\" = ipg"
equation "\"ipg\" = 0.25"
properties part number "Lower Middle Plate" material "PET Plastic"
